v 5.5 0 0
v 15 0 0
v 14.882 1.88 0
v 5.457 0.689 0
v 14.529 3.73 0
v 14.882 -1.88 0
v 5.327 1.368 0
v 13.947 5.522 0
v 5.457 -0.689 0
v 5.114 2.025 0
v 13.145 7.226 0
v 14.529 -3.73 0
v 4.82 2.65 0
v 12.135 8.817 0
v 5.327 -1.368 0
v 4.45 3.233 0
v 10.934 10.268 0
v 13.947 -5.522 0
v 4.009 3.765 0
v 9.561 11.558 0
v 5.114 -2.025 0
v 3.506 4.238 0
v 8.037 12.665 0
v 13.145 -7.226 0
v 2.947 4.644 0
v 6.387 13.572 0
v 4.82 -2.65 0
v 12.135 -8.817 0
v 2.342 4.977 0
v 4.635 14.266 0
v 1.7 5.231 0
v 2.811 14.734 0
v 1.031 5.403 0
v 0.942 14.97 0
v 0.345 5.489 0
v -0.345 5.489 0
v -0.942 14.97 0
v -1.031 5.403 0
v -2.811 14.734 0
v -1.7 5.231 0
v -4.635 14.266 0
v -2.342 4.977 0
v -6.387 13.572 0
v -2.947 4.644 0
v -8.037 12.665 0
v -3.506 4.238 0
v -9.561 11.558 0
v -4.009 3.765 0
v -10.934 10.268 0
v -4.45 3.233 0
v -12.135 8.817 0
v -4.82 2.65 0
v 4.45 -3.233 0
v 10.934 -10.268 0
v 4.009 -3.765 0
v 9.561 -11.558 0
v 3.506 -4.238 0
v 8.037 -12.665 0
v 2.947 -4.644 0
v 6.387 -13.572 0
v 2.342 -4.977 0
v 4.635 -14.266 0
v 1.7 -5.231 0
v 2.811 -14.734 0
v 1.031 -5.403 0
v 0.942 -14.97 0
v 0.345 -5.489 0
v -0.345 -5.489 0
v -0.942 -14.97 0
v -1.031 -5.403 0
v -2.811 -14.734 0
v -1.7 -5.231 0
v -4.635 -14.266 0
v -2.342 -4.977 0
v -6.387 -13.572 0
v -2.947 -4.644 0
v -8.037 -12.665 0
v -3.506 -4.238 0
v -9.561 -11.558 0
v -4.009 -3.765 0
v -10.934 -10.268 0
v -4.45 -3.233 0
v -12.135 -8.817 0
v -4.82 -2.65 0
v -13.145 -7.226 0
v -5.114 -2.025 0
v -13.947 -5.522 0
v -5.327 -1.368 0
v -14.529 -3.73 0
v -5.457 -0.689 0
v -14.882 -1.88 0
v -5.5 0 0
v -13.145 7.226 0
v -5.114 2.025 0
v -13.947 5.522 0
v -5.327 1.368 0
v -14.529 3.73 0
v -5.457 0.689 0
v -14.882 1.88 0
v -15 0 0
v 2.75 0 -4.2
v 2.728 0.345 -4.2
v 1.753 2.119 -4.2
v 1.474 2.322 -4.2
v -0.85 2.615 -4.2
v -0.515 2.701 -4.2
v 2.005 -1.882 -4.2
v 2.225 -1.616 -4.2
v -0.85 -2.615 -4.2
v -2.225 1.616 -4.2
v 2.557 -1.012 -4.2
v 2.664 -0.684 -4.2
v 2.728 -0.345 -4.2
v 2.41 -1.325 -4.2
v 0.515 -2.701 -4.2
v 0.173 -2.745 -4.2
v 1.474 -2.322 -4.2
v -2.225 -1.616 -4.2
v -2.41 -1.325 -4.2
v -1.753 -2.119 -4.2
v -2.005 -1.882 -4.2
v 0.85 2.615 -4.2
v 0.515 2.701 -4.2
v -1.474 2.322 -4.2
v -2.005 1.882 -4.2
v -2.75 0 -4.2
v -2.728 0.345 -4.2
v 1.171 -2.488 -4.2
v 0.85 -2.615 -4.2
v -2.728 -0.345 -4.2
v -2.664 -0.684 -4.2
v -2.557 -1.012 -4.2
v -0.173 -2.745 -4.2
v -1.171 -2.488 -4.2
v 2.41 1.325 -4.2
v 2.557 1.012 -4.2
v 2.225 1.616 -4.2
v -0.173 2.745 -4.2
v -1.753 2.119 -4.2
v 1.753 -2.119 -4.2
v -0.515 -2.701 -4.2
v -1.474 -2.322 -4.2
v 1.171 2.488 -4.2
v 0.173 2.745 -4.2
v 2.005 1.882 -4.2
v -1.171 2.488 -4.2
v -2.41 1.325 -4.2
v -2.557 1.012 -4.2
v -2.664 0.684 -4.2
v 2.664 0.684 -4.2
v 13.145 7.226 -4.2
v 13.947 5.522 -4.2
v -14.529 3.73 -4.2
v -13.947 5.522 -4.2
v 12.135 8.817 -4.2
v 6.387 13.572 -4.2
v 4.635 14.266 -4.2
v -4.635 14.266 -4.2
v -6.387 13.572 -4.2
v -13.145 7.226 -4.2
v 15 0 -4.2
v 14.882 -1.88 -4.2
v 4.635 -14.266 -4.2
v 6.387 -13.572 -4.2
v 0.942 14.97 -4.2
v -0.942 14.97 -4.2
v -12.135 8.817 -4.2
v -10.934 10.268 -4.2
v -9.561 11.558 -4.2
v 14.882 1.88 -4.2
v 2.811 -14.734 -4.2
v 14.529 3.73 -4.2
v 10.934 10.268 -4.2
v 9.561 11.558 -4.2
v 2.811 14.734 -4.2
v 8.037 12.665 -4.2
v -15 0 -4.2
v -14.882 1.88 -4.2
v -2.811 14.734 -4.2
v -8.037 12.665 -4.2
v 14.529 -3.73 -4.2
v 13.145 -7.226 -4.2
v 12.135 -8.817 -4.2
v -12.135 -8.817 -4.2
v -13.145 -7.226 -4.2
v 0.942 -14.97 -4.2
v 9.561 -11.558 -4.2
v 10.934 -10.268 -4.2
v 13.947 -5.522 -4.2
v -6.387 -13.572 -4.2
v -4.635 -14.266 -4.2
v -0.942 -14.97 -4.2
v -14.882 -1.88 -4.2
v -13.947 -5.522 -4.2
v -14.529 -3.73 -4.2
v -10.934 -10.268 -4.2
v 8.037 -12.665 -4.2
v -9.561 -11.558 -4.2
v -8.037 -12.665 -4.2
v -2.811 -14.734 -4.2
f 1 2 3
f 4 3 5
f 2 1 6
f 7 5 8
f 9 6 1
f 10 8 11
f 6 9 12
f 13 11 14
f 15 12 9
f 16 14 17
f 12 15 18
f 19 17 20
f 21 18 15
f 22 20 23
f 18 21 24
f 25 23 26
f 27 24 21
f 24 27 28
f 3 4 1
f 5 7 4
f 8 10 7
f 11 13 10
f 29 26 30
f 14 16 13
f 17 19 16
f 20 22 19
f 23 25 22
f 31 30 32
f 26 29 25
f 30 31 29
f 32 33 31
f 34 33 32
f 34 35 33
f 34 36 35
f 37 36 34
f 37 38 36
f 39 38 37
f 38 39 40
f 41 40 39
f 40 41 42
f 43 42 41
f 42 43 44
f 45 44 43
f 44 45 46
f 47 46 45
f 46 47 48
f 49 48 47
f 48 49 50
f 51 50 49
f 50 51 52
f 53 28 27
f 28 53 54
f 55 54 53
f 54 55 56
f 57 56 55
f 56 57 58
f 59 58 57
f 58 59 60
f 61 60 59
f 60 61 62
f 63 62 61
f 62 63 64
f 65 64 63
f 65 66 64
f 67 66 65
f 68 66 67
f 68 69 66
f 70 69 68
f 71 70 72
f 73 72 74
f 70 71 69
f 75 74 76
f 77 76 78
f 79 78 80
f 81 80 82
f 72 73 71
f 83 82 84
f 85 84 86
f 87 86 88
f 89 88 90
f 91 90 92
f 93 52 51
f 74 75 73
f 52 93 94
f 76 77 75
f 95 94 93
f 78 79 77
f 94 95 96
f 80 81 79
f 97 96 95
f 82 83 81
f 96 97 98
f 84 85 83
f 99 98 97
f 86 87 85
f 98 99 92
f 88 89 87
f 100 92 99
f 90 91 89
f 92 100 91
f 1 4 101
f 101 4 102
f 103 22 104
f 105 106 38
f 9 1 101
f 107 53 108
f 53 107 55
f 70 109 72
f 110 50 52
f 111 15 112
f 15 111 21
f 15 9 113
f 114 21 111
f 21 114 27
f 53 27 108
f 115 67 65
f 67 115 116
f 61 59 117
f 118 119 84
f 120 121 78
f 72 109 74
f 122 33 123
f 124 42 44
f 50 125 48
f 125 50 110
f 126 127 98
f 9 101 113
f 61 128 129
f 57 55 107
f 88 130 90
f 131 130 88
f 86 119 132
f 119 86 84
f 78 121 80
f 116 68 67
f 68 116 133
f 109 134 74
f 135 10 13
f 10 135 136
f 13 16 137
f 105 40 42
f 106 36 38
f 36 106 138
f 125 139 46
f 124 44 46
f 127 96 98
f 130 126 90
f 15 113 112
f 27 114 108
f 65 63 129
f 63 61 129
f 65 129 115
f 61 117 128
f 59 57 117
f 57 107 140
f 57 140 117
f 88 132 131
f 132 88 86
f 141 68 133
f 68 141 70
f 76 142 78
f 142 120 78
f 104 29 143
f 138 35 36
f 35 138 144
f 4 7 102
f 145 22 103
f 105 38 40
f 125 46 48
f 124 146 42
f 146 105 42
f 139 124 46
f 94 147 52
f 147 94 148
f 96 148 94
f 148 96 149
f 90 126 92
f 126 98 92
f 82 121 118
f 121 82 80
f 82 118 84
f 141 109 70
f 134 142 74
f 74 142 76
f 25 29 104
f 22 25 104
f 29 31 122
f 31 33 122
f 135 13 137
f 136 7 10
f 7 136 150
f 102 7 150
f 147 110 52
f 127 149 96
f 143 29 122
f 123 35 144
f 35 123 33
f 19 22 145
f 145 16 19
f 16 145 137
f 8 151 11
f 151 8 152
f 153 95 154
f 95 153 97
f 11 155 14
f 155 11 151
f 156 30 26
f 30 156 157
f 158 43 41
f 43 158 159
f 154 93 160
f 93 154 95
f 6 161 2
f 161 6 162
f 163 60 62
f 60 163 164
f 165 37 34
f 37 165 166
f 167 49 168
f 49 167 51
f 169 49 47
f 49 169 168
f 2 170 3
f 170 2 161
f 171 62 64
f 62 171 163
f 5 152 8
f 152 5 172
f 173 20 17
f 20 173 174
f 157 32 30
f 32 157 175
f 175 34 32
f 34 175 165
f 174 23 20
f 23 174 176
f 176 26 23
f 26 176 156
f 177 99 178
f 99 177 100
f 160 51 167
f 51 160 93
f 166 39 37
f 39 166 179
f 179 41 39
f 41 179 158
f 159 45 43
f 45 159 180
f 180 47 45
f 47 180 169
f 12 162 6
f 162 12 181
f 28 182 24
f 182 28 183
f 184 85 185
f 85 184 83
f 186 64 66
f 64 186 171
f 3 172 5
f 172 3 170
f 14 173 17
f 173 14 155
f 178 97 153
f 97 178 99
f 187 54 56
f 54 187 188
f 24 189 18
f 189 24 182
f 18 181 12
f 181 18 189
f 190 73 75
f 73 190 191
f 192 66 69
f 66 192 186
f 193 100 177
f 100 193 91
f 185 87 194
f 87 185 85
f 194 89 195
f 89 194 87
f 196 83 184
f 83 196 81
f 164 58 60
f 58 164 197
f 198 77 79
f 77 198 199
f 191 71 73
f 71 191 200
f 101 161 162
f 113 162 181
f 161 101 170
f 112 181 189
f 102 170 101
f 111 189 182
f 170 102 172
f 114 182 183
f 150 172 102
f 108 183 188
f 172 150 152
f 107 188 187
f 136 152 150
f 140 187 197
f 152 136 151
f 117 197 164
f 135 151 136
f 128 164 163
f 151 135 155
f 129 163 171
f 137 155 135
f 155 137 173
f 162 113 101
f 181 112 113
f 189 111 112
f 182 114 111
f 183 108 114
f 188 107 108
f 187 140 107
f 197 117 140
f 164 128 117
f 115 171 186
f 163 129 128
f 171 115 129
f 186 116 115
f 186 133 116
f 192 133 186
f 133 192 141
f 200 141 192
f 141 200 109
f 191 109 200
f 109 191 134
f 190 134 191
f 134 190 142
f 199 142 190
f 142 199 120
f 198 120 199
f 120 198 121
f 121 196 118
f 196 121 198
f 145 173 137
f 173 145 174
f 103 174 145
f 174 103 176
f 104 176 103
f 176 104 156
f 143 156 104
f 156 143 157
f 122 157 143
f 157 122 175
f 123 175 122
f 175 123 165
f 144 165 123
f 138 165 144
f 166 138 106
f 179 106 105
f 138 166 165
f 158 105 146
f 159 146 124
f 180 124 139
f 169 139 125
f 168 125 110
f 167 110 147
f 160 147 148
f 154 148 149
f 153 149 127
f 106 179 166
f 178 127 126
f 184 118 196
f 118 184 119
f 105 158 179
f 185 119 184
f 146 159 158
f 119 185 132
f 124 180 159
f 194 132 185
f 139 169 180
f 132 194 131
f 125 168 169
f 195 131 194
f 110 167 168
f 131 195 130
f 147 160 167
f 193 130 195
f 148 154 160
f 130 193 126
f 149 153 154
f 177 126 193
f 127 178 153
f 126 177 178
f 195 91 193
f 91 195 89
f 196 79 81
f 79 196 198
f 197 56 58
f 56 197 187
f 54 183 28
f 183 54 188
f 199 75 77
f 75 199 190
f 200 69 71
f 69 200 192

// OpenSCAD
$fn = 50;


difference() {
	union() {
		translate(v = [0, 0, -4.2000000000]) {
			cylinder(h = 4.2000000000, r = 15.0000000000);
		}
	}
	union() {
		translate(v = [0, 0, 0]) {
			rotate(a = [0, 0, 0]) {
				difference() {
					union() {
						translate(v = [0, 0, -7.2000000000]) {
							cylinder(h = 7.2000000000, r = 2.2500000000);
						}
						translate(v = [0, 0, -4.2000000000]) {
							cylinder(h = 4.2000000000, r1 = 2.7500000000, r2 = 5.5000000000);
						}
						translate(v = [0, 0, -7.2000000000]) {
							cylinder(h = 7.2000000000, r = 2.7500000000);
						}
						translate(v = [0, 0, -7.2000000000]) {
							cylinder(h = 7.2000000000, r = 2.2500000000);
						}
					}
					union();
				}
			}
		}
	}
}
